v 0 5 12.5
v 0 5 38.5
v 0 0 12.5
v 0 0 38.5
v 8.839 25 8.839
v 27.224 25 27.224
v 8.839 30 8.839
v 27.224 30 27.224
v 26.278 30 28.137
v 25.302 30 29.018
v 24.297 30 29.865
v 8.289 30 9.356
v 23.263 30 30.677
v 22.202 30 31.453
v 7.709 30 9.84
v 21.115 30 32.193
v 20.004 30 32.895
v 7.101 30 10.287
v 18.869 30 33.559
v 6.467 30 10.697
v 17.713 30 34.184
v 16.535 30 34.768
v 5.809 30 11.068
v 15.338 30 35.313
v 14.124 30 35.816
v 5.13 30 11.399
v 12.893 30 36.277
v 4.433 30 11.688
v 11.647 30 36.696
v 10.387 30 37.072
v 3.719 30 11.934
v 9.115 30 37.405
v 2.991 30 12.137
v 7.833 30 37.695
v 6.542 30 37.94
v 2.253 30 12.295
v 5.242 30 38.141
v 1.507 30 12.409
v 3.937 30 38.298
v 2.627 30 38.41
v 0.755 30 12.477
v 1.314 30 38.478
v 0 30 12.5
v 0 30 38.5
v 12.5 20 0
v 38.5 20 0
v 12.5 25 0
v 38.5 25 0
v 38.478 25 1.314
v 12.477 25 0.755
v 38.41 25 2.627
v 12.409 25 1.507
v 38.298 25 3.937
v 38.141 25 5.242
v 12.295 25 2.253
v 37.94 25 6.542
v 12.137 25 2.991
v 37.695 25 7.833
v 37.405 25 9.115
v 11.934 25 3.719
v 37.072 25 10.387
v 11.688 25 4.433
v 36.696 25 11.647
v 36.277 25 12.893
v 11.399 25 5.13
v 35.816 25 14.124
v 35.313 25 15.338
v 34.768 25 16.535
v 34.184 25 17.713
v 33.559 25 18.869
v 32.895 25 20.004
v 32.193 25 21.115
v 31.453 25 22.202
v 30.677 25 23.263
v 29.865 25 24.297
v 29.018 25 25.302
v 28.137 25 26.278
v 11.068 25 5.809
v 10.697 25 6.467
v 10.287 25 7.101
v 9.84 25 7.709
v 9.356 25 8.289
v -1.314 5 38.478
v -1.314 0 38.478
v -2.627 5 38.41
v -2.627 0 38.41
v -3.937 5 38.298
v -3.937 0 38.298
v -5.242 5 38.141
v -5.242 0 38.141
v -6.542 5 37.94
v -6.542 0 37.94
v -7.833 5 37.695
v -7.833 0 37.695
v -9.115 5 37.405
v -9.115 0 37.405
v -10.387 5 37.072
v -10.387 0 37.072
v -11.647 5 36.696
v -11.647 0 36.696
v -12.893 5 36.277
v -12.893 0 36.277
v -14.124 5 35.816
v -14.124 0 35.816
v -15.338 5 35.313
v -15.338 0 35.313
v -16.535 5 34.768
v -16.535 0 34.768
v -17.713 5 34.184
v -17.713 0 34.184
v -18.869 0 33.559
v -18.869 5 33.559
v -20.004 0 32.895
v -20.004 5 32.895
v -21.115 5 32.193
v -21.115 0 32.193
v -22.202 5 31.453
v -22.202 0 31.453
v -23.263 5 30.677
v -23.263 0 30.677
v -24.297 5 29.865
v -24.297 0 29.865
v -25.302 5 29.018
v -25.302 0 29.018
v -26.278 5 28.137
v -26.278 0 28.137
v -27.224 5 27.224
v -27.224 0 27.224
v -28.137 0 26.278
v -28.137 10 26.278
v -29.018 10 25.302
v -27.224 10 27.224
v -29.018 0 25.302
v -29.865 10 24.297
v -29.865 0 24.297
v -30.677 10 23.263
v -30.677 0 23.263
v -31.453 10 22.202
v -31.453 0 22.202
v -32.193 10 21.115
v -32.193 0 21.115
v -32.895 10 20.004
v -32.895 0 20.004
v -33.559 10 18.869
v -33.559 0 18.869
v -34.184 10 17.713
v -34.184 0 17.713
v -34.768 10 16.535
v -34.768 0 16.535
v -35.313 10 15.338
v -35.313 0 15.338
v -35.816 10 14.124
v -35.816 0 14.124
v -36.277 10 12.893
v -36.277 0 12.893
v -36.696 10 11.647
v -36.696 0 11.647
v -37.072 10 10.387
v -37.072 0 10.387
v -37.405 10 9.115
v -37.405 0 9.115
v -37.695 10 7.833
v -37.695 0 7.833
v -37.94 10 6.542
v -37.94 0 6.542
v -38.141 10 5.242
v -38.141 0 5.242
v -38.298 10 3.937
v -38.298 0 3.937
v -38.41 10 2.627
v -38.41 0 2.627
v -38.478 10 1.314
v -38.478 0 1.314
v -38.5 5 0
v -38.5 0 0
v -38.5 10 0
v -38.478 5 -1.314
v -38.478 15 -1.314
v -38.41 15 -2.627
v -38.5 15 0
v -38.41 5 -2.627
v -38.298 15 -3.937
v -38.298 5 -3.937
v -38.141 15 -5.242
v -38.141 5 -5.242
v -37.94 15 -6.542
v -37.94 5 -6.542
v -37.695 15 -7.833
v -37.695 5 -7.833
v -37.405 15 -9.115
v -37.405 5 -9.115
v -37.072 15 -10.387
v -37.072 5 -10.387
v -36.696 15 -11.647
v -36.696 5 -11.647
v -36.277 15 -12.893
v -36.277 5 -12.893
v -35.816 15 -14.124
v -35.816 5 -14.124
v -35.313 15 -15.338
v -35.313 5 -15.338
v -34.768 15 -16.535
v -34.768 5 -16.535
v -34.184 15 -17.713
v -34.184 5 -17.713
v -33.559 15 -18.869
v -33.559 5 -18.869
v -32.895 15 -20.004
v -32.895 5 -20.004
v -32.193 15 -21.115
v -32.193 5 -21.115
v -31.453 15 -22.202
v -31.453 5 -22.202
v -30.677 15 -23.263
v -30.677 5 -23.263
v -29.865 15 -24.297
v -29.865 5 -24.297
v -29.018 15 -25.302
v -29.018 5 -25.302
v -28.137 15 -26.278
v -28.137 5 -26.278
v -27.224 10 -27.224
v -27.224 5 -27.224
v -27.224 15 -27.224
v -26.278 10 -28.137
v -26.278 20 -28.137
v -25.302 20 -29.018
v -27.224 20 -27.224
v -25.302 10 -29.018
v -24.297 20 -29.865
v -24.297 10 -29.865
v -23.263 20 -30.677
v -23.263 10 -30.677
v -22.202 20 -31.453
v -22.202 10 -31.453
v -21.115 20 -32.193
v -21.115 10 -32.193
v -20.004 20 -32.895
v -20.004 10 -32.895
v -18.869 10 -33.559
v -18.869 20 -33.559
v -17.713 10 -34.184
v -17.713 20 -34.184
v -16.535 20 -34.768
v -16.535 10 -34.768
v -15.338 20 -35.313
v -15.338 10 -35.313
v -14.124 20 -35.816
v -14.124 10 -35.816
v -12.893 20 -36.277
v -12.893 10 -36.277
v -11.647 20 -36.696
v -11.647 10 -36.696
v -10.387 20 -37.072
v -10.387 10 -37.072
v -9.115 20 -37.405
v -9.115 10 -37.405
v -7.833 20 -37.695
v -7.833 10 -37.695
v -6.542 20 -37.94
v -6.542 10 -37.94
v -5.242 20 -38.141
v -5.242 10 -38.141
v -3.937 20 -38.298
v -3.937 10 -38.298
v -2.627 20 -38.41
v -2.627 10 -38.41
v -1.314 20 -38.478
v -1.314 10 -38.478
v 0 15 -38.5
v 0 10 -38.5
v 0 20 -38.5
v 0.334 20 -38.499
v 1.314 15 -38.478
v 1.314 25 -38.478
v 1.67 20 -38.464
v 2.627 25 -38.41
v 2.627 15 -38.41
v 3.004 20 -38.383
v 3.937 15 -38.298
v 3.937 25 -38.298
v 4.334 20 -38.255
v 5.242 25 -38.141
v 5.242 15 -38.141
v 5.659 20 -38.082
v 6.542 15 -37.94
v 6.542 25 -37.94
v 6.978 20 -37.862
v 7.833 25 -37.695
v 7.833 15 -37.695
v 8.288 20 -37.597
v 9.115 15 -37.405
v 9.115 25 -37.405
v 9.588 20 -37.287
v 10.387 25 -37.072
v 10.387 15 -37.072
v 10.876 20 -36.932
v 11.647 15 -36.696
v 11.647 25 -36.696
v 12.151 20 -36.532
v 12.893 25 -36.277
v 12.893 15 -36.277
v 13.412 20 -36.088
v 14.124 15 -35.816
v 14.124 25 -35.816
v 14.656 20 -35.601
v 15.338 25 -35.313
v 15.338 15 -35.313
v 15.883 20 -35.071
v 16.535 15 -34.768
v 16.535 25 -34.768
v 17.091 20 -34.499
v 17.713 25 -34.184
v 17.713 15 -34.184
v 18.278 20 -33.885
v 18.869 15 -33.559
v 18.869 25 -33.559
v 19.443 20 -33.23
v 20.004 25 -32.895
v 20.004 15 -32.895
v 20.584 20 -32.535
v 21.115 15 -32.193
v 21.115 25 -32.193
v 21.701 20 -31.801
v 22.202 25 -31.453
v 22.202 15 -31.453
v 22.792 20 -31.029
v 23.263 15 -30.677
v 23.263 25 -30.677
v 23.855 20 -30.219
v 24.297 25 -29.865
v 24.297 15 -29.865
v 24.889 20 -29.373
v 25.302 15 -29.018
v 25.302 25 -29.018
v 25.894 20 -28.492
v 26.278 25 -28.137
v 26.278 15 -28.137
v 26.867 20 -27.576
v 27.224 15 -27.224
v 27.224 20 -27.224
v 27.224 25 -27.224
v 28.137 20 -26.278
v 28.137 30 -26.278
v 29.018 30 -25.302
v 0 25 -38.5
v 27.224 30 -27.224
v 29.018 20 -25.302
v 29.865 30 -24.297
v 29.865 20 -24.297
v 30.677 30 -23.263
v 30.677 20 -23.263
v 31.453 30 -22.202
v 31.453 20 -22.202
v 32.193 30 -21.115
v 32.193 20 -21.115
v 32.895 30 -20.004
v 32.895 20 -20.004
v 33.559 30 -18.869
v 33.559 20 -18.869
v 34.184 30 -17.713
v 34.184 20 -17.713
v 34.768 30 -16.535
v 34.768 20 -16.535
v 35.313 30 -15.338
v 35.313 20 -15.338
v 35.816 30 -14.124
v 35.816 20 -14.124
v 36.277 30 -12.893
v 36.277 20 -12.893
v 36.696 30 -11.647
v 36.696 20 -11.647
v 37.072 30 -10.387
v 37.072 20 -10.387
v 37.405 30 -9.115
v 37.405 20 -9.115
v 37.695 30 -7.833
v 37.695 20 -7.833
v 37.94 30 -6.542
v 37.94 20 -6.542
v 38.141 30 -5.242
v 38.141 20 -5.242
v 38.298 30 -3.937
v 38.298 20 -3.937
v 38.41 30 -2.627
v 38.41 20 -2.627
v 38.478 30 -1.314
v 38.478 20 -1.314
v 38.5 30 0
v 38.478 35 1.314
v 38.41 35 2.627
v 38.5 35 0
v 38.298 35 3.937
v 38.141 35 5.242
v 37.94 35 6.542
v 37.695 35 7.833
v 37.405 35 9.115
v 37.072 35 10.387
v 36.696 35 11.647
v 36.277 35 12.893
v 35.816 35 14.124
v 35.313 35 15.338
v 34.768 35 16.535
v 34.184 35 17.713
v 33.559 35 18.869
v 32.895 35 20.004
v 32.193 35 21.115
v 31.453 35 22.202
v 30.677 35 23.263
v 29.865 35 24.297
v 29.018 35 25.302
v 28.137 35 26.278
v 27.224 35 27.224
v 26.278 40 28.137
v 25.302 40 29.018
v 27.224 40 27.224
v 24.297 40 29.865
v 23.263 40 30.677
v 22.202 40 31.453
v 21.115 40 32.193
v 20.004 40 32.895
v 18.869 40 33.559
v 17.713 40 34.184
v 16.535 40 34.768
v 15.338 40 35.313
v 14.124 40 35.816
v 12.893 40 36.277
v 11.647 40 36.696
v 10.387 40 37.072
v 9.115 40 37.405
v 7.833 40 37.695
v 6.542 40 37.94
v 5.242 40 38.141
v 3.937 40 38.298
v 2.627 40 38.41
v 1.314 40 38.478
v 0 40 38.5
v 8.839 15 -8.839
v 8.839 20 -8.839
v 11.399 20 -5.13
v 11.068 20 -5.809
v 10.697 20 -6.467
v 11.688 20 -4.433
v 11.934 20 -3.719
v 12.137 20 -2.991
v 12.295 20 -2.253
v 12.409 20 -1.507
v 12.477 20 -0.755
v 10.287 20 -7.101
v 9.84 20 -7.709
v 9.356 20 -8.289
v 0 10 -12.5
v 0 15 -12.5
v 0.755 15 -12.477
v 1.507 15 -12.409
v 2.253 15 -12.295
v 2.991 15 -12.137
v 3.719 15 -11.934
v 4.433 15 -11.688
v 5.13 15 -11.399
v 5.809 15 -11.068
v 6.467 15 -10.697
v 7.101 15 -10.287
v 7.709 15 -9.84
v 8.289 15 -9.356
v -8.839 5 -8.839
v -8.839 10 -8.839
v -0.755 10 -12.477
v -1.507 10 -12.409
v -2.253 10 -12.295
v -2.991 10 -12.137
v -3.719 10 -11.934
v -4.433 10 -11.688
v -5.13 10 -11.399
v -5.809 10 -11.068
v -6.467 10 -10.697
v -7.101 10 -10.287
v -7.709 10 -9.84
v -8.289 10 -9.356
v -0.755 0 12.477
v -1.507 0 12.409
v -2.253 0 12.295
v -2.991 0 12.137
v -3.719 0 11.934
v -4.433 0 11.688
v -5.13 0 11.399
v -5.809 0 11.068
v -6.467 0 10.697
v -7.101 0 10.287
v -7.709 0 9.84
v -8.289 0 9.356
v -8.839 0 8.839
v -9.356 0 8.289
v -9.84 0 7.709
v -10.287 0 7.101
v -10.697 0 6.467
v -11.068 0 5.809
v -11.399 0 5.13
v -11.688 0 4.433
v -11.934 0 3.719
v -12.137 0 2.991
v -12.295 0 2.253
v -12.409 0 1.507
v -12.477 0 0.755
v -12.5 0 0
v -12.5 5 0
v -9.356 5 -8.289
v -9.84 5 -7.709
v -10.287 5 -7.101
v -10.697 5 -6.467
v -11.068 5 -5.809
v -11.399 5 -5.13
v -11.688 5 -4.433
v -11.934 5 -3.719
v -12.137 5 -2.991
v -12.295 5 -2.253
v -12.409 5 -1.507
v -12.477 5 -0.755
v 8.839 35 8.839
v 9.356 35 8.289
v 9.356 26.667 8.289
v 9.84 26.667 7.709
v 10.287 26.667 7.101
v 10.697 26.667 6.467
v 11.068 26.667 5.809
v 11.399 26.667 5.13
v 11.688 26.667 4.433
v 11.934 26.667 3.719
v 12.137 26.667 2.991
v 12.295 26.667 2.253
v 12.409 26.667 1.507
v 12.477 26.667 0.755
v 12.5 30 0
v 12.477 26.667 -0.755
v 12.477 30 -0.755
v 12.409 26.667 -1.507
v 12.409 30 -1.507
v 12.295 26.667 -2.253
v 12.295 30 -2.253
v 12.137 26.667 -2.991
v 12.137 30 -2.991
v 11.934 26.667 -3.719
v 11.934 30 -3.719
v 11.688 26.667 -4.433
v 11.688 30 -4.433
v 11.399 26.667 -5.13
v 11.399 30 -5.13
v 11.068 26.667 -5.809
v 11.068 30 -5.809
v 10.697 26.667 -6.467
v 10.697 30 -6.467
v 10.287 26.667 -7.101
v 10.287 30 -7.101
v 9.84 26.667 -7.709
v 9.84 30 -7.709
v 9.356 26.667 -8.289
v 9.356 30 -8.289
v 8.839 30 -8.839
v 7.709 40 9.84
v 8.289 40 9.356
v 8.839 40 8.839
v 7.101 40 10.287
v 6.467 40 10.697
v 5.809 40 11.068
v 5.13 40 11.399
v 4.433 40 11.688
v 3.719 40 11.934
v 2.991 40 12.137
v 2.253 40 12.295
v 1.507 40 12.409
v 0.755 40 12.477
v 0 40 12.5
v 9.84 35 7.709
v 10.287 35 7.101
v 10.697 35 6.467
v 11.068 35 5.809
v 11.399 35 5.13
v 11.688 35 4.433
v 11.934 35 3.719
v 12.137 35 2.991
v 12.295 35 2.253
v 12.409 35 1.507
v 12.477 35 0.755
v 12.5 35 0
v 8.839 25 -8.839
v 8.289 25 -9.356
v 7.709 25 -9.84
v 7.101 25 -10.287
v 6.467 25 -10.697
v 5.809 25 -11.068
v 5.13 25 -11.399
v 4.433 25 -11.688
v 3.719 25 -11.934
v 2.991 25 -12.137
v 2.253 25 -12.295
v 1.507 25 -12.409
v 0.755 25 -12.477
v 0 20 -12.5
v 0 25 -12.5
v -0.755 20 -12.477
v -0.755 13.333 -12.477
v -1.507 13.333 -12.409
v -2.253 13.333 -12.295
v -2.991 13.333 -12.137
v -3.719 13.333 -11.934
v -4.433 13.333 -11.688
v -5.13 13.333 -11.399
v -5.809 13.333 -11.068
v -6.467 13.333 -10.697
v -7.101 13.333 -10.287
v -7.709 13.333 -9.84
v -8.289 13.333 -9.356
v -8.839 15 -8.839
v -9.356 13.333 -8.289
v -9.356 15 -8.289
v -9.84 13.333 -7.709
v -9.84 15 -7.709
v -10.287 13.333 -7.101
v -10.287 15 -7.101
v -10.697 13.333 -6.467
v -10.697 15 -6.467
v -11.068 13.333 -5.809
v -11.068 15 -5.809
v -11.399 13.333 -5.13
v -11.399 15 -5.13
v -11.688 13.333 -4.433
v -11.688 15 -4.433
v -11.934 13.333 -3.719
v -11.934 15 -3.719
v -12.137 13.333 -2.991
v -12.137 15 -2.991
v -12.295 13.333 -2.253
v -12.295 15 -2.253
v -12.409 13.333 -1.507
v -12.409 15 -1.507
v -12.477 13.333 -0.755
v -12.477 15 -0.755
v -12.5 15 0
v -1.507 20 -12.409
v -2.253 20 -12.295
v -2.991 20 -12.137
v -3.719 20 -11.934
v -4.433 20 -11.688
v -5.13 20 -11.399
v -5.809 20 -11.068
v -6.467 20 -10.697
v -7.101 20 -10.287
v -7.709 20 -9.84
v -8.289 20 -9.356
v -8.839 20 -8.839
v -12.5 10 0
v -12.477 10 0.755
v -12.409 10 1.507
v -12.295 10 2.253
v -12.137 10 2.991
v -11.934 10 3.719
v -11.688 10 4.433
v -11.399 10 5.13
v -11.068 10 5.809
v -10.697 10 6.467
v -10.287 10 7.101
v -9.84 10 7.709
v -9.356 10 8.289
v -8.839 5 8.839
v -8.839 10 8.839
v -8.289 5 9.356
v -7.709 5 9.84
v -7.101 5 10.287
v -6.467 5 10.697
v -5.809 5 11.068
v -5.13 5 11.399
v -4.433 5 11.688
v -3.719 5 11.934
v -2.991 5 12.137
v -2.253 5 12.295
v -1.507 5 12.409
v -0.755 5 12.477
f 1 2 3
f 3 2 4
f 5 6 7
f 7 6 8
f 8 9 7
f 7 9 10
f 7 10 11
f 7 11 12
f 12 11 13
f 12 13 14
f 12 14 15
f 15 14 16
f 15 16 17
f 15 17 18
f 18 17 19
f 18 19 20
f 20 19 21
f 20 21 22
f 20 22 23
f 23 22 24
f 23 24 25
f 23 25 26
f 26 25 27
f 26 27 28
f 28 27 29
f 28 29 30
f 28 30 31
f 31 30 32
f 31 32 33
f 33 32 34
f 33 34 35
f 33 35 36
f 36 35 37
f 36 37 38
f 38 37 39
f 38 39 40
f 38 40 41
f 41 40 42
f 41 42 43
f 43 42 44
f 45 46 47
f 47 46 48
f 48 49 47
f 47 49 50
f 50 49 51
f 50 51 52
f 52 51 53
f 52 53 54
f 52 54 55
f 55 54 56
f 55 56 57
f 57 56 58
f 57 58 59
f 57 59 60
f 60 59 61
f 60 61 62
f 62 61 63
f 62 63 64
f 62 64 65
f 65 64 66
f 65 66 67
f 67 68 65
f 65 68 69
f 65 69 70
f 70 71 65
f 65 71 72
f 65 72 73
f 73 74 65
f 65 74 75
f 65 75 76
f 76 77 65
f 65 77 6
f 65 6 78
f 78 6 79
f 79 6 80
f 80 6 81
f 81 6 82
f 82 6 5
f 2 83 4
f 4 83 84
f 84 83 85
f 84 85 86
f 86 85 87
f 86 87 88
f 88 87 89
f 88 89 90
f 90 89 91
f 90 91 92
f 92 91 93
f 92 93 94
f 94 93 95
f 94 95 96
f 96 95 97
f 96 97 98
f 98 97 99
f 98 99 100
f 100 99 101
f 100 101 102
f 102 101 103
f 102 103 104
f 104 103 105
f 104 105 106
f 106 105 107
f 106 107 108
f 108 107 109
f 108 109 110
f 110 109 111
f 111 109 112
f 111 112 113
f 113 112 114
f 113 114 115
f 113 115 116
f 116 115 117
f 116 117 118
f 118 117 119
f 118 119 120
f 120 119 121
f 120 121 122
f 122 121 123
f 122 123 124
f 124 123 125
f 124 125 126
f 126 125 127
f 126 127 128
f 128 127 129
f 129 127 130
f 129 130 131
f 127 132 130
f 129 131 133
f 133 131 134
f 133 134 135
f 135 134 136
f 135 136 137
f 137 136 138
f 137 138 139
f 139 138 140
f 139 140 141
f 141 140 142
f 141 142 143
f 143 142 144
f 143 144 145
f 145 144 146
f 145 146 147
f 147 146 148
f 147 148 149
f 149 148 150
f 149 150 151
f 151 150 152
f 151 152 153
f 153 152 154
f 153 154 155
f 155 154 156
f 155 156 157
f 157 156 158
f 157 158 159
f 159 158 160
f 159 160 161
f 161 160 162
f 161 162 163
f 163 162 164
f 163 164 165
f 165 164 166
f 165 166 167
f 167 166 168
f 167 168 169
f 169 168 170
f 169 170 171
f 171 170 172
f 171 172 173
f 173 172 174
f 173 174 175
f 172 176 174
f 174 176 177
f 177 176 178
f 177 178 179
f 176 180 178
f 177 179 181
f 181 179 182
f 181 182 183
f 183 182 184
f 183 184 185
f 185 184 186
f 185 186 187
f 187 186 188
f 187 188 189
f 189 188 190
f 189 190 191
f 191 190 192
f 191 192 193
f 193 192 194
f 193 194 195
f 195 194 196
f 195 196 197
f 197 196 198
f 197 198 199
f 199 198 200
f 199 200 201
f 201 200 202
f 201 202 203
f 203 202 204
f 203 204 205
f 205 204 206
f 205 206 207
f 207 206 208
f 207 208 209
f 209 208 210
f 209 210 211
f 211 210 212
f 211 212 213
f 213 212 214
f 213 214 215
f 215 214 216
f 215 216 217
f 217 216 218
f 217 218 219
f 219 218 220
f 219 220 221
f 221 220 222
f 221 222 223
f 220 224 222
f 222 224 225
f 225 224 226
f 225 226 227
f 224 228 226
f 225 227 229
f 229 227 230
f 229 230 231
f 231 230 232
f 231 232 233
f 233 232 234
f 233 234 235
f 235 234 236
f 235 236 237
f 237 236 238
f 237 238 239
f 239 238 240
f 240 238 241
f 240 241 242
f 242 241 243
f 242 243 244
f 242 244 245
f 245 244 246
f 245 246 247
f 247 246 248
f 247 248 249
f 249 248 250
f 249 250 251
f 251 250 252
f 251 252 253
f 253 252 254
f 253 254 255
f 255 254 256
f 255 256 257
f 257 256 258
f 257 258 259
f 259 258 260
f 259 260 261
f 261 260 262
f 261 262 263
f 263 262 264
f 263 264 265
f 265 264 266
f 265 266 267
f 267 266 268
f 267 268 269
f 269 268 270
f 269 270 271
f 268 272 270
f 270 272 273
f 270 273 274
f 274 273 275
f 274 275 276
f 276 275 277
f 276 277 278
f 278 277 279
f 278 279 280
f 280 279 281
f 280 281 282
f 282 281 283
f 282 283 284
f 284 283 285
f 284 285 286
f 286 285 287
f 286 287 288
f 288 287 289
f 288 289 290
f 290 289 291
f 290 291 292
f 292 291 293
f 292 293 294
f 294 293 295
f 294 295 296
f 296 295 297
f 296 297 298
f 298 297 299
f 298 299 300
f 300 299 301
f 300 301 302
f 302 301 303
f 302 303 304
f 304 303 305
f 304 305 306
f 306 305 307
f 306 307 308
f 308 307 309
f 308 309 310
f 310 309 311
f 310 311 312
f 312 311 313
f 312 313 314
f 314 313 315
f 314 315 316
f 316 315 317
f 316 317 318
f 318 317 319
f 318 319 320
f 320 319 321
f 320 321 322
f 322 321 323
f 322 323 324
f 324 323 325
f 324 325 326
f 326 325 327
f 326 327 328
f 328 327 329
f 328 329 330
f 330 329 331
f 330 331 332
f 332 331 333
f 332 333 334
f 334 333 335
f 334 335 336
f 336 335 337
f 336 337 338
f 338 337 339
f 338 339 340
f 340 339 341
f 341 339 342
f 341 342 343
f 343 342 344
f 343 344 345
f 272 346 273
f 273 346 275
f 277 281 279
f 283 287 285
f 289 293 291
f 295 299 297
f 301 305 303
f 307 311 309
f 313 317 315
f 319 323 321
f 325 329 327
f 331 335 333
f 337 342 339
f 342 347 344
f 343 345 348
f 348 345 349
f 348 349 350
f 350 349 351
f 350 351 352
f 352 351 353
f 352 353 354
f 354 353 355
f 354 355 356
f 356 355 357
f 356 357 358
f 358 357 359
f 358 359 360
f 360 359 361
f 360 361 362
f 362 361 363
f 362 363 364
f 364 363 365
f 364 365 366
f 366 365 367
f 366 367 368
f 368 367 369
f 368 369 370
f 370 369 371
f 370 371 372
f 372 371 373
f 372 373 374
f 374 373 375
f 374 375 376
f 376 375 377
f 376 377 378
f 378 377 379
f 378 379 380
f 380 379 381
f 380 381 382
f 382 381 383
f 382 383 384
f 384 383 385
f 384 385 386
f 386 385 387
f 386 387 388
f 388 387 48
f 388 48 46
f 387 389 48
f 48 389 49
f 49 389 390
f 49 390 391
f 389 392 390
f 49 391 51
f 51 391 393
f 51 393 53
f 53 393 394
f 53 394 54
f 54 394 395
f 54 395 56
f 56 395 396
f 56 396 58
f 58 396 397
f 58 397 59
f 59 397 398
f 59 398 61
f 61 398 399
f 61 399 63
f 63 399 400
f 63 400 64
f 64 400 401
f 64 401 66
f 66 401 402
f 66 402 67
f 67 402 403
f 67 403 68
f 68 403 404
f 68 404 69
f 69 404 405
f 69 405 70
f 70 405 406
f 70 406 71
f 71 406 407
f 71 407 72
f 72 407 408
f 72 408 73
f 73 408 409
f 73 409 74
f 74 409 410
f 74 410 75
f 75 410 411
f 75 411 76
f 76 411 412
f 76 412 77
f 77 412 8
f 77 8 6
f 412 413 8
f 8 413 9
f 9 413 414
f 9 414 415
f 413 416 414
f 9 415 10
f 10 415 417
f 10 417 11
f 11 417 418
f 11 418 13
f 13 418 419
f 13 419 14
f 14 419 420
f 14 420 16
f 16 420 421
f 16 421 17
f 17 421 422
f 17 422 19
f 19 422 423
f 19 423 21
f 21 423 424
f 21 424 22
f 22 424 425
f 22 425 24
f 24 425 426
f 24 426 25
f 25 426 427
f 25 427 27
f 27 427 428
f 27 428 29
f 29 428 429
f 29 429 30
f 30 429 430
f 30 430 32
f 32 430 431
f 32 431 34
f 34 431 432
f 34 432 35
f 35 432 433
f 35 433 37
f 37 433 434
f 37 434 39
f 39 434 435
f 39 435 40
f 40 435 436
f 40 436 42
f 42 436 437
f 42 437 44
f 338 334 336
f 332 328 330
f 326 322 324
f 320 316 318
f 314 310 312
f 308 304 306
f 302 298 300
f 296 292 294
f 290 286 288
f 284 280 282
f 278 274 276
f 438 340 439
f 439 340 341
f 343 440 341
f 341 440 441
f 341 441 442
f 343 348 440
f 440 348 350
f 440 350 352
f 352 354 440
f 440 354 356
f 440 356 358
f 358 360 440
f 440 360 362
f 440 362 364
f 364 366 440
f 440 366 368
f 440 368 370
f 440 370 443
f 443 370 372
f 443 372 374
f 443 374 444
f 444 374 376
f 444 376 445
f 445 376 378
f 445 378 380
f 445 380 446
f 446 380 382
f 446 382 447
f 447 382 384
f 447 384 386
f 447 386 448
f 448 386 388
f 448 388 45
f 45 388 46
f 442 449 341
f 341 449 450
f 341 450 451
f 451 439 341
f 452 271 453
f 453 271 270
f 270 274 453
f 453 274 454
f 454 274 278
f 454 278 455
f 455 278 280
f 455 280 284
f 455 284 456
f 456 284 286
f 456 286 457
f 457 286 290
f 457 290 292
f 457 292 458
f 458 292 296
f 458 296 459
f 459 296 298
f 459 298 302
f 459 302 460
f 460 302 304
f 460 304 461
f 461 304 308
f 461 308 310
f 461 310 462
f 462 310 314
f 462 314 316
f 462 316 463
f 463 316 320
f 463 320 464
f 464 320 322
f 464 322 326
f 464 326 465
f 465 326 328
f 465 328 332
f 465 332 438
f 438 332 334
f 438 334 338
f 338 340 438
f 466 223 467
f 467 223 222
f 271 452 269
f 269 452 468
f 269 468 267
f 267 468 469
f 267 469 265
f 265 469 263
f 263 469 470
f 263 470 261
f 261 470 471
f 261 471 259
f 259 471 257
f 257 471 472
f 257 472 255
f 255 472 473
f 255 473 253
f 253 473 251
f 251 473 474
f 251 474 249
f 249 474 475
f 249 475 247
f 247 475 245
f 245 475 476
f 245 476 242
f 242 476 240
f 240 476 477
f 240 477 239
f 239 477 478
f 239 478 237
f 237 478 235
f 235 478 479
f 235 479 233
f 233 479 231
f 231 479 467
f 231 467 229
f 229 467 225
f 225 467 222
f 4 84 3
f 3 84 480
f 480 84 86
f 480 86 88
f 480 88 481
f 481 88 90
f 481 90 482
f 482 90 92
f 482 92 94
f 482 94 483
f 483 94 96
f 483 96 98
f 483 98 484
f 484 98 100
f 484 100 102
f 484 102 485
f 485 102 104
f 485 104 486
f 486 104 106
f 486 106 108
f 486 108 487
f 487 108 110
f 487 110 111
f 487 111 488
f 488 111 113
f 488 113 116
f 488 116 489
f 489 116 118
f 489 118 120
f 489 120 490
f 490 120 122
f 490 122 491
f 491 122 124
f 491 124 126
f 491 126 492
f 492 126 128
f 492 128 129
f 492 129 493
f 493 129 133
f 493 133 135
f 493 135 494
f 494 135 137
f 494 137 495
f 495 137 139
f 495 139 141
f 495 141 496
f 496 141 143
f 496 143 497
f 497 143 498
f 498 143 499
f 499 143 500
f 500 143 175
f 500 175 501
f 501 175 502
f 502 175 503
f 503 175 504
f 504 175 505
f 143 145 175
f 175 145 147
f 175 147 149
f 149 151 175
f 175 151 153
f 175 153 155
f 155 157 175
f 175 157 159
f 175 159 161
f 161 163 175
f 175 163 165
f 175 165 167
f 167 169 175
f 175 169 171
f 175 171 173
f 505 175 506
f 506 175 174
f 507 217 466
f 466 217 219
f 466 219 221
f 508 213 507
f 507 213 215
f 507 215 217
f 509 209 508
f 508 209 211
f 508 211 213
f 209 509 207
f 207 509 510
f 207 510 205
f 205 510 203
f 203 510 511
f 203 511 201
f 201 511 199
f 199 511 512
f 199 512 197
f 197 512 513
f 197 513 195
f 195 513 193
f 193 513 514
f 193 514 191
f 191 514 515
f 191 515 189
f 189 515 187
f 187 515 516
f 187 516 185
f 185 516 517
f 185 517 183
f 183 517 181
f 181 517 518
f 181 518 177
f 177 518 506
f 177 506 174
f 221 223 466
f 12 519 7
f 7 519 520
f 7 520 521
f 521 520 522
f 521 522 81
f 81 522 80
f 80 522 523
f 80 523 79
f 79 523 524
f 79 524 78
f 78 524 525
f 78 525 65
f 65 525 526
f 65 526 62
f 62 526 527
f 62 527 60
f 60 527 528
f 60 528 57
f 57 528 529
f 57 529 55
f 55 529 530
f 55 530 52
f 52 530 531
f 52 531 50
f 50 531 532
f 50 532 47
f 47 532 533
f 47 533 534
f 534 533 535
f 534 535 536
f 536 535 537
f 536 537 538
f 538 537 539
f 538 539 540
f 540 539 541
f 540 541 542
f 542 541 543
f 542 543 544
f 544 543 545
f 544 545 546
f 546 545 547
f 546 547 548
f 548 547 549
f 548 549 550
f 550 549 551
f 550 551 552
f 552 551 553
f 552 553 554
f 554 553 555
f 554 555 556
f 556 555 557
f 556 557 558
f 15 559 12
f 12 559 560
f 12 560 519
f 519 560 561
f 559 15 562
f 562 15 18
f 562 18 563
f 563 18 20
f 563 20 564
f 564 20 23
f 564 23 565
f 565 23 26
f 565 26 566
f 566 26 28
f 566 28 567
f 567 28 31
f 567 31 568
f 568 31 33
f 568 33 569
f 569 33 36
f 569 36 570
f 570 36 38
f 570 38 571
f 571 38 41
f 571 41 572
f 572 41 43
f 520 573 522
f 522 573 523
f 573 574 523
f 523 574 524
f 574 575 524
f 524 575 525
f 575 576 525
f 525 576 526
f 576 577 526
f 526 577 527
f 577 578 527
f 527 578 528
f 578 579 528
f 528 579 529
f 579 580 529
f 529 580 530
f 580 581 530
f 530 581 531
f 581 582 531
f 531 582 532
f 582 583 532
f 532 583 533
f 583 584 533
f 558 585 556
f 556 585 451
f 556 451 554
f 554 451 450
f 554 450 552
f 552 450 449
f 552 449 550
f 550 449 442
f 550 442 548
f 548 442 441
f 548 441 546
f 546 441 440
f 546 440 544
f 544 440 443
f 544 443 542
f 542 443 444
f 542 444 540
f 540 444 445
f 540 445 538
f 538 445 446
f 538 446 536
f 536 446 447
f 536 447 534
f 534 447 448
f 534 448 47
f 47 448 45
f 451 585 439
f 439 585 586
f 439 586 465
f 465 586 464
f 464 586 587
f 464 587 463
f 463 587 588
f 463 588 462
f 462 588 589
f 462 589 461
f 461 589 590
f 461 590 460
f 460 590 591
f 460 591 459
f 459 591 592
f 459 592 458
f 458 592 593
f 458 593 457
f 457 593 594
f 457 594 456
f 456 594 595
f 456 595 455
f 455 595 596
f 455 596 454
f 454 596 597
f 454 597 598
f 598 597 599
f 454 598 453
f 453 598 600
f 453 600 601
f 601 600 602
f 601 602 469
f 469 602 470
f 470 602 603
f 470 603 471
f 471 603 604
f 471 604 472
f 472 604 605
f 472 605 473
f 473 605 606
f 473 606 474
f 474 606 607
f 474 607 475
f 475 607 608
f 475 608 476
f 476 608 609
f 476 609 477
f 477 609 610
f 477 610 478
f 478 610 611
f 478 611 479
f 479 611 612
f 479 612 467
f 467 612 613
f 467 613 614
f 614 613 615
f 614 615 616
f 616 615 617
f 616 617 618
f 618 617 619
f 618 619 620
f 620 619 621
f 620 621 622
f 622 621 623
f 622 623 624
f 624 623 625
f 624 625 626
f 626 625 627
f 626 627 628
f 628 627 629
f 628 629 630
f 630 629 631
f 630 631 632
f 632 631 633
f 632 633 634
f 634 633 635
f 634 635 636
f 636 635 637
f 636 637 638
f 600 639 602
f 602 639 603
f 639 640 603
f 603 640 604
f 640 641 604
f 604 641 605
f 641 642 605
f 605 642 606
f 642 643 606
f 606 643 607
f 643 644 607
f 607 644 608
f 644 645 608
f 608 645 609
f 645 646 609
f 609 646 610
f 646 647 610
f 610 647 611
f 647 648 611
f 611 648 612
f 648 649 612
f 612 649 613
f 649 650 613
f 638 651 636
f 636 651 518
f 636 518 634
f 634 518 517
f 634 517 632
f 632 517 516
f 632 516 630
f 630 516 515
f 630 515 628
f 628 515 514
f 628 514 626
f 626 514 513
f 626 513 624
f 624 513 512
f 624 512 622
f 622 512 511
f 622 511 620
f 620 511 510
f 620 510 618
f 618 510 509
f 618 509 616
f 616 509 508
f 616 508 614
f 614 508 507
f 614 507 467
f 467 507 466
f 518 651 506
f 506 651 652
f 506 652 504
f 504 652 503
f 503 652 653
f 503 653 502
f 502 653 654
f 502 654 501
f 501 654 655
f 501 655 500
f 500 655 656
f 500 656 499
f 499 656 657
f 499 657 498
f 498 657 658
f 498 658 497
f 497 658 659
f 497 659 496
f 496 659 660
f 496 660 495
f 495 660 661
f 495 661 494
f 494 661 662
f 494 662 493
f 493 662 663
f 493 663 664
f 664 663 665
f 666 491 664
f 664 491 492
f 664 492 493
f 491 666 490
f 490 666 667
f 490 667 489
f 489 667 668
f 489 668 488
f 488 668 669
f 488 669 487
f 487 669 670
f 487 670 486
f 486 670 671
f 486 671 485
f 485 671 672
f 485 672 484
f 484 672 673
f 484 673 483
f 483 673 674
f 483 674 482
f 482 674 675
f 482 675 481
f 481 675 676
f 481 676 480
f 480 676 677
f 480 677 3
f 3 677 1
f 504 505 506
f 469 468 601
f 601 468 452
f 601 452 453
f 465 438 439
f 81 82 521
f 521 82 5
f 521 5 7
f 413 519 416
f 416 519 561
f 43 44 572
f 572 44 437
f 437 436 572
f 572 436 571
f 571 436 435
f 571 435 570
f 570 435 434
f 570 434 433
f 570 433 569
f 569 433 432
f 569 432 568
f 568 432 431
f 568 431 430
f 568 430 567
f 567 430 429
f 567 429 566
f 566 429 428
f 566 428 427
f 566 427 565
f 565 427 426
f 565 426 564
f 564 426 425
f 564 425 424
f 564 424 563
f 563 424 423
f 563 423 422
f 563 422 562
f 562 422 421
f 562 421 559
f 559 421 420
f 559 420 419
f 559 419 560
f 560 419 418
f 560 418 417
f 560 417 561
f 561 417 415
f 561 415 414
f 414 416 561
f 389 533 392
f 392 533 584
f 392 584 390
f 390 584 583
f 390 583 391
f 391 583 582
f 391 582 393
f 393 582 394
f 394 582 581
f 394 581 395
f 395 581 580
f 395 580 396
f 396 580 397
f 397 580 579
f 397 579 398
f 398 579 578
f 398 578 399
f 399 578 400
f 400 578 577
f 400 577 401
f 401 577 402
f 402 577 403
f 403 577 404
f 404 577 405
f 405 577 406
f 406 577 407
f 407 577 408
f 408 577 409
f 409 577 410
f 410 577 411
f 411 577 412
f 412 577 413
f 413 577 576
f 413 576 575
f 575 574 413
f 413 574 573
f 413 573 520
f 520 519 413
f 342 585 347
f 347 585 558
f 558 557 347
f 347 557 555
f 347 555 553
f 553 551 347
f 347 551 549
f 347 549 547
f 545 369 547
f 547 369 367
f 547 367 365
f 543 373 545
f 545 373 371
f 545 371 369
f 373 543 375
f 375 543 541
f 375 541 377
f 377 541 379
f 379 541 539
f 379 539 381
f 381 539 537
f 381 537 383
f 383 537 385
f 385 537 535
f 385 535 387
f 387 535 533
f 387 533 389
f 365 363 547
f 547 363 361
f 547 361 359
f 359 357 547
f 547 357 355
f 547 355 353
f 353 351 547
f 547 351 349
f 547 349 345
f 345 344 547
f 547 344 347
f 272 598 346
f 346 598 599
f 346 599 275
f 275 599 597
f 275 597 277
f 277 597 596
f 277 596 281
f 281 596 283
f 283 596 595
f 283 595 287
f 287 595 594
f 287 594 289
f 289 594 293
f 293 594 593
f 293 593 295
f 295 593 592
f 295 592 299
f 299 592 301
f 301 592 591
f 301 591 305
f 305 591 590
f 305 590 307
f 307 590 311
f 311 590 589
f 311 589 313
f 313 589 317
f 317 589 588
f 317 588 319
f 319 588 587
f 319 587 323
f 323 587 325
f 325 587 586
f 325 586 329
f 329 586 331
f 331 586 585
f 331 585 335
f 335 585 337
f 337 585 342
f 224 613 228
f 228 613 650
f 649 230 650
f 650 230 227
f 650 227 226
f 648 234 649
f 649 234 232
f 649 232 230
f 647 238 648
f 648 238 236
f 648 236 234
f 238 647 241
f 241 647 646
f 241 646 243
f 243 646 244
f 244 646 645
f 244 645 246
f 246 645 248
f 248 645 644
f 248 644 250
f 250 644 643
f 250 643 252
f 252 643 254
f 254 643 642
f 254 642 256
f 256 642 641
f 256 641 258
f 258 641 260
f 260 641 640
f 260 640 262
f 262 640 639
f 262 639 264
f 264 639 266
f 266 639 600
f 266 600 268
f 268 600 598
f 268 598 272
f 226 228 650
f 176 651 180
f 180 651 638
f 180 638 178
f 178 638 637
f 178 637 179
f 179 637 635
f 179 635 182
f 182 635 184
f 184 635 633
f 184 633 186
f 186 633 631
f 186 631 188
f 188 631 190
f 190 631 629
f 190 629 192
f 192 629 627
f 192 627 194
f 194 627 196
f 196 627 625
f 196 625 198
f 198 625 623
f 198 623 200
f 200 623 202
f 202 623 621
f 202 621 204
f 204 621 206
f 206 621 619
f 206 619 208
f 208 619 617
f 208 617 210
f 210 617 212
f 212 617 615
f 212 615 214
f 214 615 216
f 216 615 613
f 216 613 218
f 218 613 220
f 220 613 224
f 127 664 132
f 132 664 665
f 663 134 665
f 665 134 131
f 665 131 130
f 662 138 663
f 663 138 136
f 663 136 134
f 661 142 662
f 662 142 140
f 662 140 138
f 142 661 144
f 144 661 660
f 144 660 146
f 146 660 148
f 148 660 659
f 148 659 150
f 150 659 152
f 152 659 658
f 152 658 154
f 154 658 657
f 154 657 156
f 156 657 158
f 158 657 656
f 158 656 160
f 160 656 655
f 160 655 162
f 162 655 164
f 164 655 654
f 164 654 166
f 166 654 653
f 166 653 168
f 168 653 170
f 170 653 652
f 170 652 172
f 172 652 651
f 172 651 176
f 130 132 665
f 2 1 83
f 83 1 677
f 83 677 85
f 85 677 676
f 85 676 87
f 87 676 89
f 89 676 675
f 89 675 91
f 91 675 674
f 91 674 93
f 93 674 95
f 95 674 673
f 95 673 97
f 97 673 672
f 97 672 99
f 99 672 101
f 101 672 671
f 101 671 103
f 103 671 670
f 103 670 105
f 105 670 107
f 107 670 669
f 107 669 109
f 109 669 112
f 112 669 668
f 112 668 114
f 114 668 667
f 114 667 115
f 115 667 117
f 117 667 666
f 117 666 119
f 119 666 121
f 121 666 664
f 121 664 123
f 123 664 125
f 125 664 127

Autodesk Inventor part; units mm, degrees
ref_plane "YZ Plane" through (0, 0, 0) normal (1, 0, 0) x (0, 1, 0)
ref_plane "XZ Plane" through (0, 0, 0) normal (0, 1, 0) x (-1, 0, 0)
ref_plane "XY Plane" through (0, 0, 0) normal (0, 0, 1) x (1, 0, 0)
sketch "Sketch1" plane through (0, 0, 0) normal (0, 1, 0) x (-1, 0, 0)
  circle A0 centre (0, 0) radius 12.5
  circle A1 centre (0, 0) radius 38.5
  line L0 (-8.8388, 8.8388) -> (-27.2236, 27.2236)
  line L1 (8.8388, -8.8388) -> (27.2236, -27.2236)
  line L2 (8.8388, 8.8388) -> (27.2236, 27.2236)
  line L3 (-8.8388, -8.8388) -> (-27.2236, -27.2236)
  line L4 (0, 38.5) -> (0, 12.5)
  line L5 (0, -12.5) -> (0, -38.5)
  line L6 (38.5, 0) -> (12.5, 0)
  line L7 (-12.5, 0) -> (-38.5, 0)
  dimension "d0" = 25
  dimension "d2" = 26
sketch "Sketch22" plane through (0, 0, 0) normal (0, 1, 0) x (-1, 0, 0)
  circle A0 centre (0, 0) radius 12.5
  circle A1 centre (0, 0) radius 38.5
  line L0 (-8.8388, 8.8388) -> (-27.2236, 27.2236)
  line L1 (8.8388, -8.8388) -> (27.2236, -27.2236)
  line L2 (8.8388, 8.8388) -> (27.2236, 27.2236)
  line L3 (-8.8388, -8.8388) -> (-27.2236, -27.2236)
  line L4 (0, 38.5) -> (0, 12.5)
  line L5 (0, -12.5) -> (0, -38.5)
  line L6 (38.5, 0) -> (12.5, 0)
  line L7 (-12.5, 0) -> (-38.5, 0)
  circle A2 centre (0, 0) radius 12.5
  circle A3 centre (0, 0) radius 38.5
  line L8 (-8.8388, 8.8388) -> (-27.2236, 27.2236)
  line L9 (8.8388, -8.8388) -> (27.2236, -27.2236)
  line L10 (8.8388, 8.8388) -> (27.2236, 27.2236)
  line L11 (-8.8388, -8.8388) -> (-27.2236, -27.2236)
  line L12 (0, 38.5) -> (0, 12.5)
  line L13 (0, -12.5) -> (0, -38.5)
  line L14 (38.5, 0) -> (12.5, 0)
  line L15 (-12.5, 0) -> (-38.5, 0)
  dimension "d128" = 25
  dimension "d129" = 26
  dimension "d130" = 25
  dimension "d131" = 26
sketch "Sketch23" plane through (0, 0, 0) normal (0, 1, 0) x (-1, 0, 0)
  circle A0 centre (0, 0) radius 12.5
  circle A1 centre (0, 0) radius 38.5
  line L0 (-8.8388, 8.8388) -> (-27.2236, 27.2236)
  line L1 (8.8388, -8.8388) -> (27.2236, -27.2236)
  line L2 (8.8388, 8.8388) -> (27.2236, 27.2236)
  line L3 (-8.8388, -8.8388) -> (-27.2236, -27.2236)
  line L4 (0, 38.5) -> (0, 12.5)
  line L5 (0, -12.5) -> (0, -38.5)
  line L6 (38.5, 0) -> (12.5, 0)
  line L7 (-12.5, 0) -> (-38.5, 0)
  dimension "d132" = 25
  dimension "d133" = 26
sketch "Sketch24" plane through (0, 0, 0) normal (0, 1, 0) x (-1, 0, 0)
  circle A0 centre (0, 0) radius 12.5
  circle A1 centre (0, 0) radius 38.5
  line L0 (-8.8388, 8.8388) -> (-27.2236, 27.2236)
  line L1 (8.8388, -8.8388) -> (27.2236, -27.2236)
  line L2 (8.8388, 8.8388) -> (27.2236, 27.2236)
  line L3 (-8.8388, -8.8388) -> (-27.2236, -27.2236)
  line L4 (0, 38.5) -> (0, 12.5)
  line L5 (0, -12.5) -> (0, -38.5)
  line L6 (38.5, 0) -> (12.5, 0)
  line L7 (-12.5, 0) -> (-38.5, 0)
  dimension "d134" = 25
  dimension "d135" = 26
sketch "Sketch25" plane through (0, 0, 0) normal (0, 1, 0) x (-1, 0, 0)
  circle A0 centre (0, 0) radius 12.5
  circle A1 centre (0, 0) radius 38.5
  line L0 (-8.8388, 8.8388) -> (-27.2236, 27.2236)
  line L1 (8.8388, -8.8388) -> (27.2236, -27.2236)
  line L2 (8.8388, 8.8388) -> (27.2236, 27.2236)
  line L3 (-8.8388, -8.8388) -> (-27.2236, -27.2236)
  line L4 (0, 38.5) -> (0, 12.5)
  line L5 (0, -12.5) -> (0, -38.5)
  line L6 (38.5, 0) -> (12.5, 0)
  line L7 (-12.5, 0) -> (-38.5, 0)
  dimension "d136" = 25
  dimension "d137" = 26
sketch "Sketch26" plane through (0, 0, 0) normal (0, 1, 0) x (-1, 0, 0)
  circle A0 centre (0, 0) radius 12.5
  circle A1 centre (0, 0) radius 38.5
  line L0 (-8.8388, 8.8388) -> (-27.2236, 27.2236)
  line L1 (8.8388, -8.8388) -> (27.2236, -27.2236)
  line L2 (8.8388, 8.8388) -> (27.2236, 27.2236)
  line L3 (-8.8388, -8.8388) -> (-27.2236, -27.2236)
  line L4 (0, 38.5) -> (0, 12.5)
  line L5 (0, -12.5) -> (0, -38.5)
  line L6 (38.5, 0) -> (12.5, 0)
  line L7 (-12.5, 0) -> (-38.5, 0)
  dimension "d138" = 25
  dimension "d139" = 26
sketch "Sketch27" plane through (0, 0, 0) normal (0, 1, 0) x (-1, 0, 0)
  circle A0 centre (0, 0) radius 12.5
  circle A1 centre (0, 0) radius 38.5
  line L0 (-8.8388, 8.8388) -> (-27.2236, 27.2236)
  line L1 (8.8388, -8.8388) -> (27.2236, -27.2236)
  line L2 (8.8388, 8.8388) -> (27.2236, 27.2236)
  line L3 (-8.8388, -8.8388) -> (-27.2236, -27.2236)
  line L4 (0, 38.5) -> (0, 12.5)
  line L5 (0, -12.5) -> (0, -38.5)
  line L6 (38.5, 0) -> (12.5, 0)
  line L7 (-12.5, 0) -> (-38.5, 0)
  dimension "d140" = 25
  dimension "d141" = 26
sketch "Sketch28" plane through (0, 0, 0) normal (0, 1, 0) x (-1, 0, 0)
  circle A0 centre (0, 0) radius 12.5
  circle A1 centre (0, 0) radius 38.5
  line L0 (-8.8388, 8.8388) -> (-27.2236, 27.2236)
  line L1 (8.8388, -8.8388) -> (27.2236, -27.2236)
  line L2 (8.8388, 8.8388) -> (27.2236, 27.2236)
  line L3 (-8.8388, -8.8388) -> (-27.2236, -27.2236)
  line L4 (0, 38.5) -> (0, 12.5)
  line L5 (0, -12.5) -> (0, -38.5)
  line L6 (38.5, 0) -> (12.5, 0)
  line L7 (-12.5, 0) -> (-38.5, 0)
  dimension "d142" = 25
  dimension "d143" = 26
extrude "Extrusion20" add sketch "Sketch1" along normal blind 5 contours A0 L4 A1 L2
extrude "Extrusion21" add sketch "Sketch24" along normal blind 10 contours A0 L2 A1 L6
extrude "Extrusion22" add sketch "Sketch22" along normal blind 15 contours L6 A1 L1 A0
extrude "Extrusion23" add sketch "Sketch28" along normal blind 20 contours L1 A1 L5 A0
extrude "Extrusion24" add sketch "Sketch1" along normal blind 25 contours L5 A1 L3 A0
extrude "Extrusion25" add sketch "Sketch27" along normal blind 30 contours L3 A1 L7 A0
extrude "Extrusion26" add sketch "Sketch1" along normal blind 35 contours A0 L7 A1 L0
extrude "Extrusion27" add sketch "Sketch23" along normal blind 40 contours A0 L0 A1 L4
sketch "Sketch29" plane through (0, 0, 0) normal (0, -1, 0) x (1, 0, 0)
  point P0 (0, 0)
extrude "Extrusion28" cut sketch "Sketch26" along normal blind 5 contours L6 A1 L1 A0
extrude "Extrusion29" cut sketch "Sketch25" along normal blind 10 contours L1 A1 L5 A0
extrude "Extrusion30" cut sketch "Sketch1" along normal blind 15 contours L5 A1 L3 A0
extrude "Extrusion31" cut sketch "Sketch1" along normal blind 20 contours L3 A1 L7 A0
extrude "Extrusion32" cut sketch "Sketch1" along normal blind 25 contours A0 L7 A1 L0
extrude "Extrusion33" cut sketch "Sketch1" along normal blind 30 contours A0 L0 A1 L4
properties part number "DireccionEscalones"
